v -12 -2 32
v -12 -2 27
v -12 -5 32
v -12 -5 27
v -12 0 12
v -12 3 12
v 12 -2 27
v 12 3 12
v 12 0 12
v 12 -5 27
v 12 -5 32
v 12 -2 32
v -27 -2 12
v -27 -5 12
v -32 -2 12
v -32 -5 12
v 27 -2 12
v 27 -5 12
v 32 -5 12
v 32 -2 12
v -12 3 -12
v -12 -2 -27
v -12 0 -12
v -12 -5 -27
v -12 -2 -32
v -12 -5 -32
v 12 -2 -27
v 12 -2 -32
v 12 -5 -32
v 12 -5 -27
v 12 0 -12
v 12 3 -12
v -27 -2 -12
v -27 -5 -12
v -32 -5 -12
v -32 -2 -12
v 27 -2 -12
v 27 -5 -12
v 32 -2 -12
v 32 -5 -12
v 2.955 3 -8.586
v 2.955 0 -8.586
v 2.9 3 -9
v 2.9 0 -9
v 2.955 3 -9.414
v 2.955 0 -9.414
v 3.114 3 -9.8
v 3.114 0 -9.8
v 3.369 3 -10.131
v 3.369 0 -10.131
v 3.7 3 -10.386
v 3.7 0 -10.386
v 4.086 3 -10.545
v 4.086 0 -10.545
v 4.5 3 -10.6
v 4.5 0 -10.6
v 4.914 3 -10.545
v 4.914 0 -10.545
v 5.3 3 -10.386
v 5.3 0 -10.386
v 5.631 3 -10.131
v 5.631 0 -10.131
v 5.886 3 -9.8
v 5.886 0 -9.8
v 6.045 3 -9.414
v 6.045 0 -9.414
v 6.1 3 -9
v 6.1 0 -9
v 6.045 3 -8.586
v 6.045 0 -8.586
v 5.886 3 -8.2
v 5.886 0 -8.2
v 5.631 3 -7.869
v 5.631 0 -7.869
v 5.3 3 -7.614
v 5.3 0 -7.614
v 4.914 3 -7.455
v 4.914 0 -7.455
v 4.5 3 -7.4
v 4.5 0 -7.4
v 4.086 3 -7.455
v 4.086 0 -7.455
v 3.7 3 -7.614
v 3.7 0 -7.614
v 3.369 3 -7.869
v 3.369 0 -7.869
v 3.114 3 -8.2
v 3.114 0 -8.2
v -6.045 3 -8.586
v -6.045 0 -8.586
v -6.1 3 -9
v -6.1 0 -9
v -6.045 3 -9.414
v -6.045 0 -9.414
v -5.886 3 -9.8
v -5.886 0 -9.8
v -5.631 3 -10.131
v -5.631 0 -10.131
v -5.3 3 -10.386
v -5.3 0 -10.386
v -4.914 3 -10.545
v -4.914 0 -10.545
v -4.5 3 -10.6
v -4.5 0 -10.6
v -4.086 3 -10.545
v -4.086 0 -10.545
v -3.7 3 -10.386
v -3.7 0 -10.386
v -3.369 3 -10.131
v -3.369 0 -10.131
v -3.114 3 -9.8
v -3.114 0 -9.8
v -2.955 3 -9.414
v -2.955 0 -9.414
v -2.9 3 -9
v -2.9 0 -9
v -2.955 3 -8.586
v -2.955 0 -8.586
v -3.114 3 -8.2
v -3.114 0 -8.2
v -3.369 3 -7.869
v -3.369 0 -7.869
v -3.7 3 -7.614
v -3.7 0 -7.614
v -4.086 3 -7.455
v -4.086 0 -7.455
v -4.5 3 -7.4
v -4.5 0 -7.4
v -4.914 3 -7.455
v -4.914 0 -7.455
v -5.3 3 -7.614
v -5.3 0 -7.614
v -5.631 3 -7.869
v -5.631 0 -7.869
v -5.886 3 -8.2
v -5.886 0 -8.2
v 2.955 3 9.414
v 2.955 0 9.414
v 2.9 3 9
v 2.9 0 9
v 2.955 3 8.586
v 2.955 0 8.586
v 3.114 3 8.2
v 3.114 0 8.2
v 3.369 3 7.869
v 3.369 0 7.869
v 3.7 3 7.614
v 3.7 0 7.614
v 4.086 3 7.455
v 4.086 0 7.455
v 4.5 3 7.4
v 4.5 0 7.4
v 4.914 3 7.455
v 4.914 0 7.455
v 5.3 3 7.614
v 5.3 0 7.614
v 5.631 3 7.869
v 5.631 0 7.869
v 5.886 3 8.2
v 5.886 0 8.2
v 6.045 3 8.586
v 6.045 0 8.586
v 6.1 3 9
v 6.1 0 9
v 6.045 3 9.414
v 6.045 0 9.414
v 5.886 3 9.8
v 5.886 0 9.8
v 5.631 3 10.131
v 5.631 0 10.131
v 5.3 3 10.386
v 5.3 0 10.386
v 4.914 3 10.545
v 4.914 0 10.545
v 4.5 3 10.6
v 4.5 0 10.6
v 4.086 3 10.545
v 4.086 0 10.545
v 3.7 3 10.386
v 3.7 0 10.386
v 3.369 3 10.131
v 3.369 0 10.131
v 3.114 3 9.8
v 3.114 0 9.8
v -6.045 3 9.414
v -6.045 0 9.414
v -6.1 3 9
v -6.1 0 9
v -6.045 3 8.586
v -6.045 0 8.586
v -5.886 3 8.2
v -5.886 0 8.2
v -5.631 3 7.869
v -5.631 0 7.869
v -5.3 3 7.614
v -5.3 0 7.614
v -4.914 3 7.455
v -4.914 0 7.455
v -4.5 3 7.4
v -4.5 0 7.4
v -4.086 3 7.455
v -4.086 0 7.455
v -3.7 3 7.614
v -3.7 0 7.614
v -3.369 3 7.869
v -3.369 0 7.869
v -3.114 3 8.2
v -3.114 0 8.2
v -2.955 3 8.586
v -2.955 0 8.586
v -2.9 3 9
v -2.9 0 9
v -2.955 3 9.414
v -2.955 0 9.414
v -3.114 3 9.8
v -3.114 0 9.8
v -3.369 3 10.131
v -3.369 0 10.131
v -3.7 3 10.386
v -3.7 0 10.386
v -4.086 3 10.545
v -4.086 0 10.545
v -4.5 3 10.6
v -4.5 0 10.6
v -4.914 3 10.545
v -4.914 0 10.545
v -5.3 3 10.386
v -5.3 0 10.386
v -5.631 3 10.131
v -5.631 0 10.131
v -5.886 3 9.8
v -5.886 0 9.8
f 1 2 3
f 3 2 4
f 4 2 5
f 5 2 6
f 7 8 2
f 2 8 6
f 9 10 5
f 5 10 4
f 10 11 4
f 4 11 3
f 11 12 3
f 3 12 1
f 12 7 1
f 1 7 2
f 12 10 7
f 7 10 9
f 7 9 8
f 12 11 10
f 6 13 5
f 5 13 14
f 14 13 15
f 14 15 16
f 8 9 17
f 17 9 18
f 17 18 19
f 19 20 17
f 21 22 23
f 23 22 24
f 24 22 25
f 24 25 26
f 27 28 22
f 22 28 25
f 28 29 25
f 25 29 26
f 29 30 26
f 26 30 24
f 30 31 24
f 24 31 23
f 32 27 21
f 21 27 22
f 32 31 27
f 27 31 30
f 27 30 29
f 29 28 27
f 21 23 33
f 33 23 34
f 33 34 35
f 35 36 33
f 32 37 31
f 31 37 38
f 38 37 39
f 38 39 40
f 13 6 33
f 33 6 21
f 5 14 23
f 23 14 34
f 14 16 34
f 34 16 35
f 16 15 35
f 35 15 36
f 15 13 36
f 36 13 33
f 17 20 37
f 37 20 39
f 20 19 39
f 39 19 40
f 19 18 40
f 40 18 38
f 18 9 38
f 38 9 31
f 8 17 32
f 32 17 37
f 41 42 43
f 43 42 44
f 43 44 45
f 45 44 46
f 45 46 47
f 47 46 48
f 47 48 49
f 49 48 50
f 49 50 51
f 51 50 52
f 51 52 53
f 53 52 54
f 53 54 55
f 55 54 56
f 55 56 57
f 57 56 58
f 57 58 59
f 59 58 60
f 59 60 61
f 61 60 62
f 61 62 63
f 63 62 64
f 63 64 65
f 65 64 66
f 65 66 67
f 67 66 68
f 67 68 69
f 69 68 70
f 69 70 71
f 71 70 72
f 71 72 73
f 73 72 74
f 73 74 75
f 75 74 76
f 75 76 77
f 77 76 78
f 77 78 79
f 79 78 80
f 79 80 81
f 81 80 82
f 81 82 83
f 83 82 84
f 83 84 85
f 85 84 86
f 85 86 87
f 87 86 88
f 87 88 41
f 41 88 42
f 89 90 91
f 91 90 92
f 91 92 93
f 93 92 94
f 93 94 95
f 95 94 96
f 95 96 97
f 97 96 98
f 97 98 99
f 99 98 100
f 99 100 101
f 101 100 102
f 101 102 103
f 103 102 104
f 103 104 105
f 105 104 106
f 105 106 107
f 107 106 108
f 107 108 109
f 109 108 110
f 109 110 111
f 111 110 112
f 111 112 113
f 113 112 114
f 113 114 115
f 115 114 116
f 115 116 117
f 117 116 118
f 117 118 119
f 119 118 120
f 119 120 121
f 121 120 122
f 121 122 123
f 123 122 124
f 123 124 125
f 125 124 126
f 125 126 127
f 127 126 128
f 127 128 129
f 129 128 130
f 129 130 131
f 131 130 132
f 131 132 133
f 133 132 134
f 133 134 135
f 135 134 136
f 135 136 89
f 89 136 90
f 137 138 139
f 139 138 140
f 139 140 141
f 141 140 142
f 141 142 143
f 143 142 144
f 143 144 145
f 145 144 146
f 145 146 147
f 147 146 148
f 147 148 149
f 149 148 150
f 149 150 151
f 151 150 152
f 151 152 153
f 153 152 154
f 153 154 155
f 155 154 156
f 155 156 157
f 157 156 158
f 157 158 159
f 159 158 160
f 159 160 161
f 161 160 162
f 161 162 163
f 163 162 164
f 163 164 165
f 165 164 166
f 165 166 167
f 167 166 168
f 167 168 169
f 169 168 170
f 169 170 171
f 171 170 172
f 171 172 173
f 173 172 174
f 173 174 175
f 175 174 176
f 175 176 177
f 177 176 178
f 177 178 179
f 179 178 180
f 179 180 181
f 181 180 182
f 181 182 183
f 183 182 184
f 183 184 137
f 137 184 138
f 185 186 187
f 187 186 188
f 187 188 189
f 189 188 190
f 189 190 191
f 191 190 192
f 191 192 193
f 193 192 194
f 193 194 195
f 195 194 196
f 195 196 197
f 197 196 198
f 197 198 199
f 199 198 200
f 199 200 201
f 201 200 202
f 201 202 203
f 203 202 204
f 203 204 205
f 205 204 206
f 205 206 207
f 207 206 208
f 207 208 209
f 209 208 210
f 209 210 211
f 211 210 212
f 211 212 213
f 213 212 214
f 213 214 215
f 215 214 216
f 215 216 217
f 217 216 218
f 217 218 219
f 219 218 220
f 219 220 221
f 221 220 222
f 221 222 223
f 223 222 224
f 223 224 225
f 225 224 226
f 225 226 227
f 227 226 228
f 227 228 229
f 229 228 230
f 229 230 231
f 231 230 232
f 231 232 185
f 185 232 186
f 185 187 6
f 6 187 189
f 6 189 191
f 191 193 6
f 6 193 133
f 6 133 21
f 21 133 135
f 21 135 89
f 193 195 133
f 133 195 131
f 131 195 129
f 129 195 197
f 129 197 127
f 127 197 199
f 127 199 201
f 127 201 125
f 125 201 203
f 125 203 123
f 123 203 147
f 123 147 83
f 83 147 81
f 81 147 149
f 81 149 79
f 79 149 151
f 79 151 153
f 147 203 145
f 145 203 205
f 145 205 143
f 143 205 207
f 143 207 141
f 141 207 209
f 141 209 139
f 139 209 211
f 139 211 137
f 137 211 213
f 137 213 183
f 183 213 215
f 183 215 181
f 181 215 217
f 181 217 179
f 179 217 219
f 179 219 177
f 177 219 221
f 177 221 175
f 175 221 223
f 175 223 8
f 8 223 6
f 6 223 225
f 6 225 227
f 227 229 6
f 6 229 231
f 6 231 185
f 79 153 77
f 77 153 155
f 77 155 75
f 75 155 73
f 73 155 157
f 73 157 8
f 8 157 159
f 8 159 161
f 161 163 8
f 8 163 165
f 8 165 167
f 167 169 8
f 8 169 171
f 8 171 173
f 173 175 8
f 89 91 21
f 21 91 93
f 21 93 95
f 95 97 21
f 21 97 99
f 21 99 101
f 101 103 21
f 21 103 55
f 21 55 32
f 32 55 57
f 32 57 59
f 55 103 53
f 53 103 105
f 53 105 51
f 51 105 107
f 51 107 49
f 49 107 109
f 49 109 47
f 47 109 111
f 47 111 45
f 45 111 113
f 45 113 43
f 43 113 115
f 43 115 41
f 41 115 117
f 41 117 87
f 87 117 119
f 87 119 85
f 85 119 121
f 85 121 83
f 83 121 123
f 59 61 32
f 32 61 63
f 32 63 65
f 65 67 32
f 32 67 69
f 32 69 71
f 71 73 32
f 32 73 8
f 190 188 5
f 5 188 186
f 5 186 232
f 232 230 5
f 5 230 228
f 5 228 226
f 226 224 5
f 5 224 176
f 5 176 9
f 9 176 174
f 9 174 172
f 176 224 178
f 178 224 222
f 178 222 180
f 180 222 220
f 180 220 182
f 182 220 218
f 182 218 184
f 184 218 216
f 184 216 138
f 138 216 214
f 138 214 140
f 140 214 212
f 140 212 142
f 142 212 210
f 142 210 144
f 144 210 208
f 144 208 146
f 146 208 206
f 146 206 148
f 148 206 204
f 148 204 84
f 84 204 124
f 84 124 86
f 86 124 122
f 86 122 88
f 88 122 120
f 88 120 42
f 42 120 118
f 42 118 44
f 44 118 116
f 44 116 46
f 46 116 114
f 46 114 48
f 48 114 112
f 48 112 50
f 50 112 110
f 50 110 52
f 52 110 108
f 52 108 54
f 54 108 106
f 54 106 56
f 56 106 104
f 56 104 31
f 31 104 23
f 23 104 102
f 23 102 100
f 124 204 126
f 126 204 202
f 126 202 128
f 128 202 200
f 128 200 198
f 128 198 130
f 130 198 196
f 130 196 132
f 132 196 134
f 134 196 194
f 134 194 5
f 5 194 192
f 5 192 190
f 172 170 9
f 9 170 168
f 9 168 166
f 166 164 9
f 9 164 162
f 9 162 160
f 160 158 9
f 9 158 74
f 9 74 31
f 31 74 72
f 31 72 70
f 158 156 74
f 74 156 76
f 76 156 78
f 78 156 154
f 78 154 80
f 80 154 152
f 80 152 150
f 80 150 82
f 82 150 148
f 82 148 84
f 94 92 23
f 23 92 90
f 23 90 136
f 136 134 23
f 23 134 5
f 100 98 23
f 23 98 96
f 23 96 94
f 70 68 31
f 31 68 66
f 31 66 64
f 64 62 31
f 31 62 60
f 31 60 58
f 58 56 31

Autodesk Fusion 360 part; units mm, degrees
sketch "スケッチ1" plane through (0, 0, 0) normal (0, 1, 0) x (1, 0, 0)
  line L0 (12, 12) -> (-12, 12)
  line L1 (-12, 12) -> (-12, -12)
  line L2 (-12, -12) -> (12, -12)
  line L3 (12, -12) -> (12, 12)
  line L4 (12, 12) -> (-12, -12) construction
  line L5 (-12, 12) -> (12, -12) construction
  line L6 (4.5, 9) -> (-4.5, 9)
  line L7 (-4.5, 9) -> (-4.5, -9)
  line L8 (-4.5, -9) -> (4.5, -9)
  line L9 (4.5, -9) -> (4.5, 9)
  line L10 (4.5, 9) -> (-4.5, -9) construction
  line L11 (-4.5, 9) -> (4.5, -9) construction
  circle A0 centre (-4.5, 9) radius 1.6
  circle A1 centre (4.5, 9) radius 1.6
  circle A2 centre (-4.5, -9) radius 1.6
  circle A3 centre (4.5, -9) radius 1.6
  dimension "d1" = 24
  dimension "d2" = 24
  dimension "d3" = 9
  dimension "d4" = 18
  dimension "d5" = 3.2
  dimension "d6" = 3.2
  dimension "d7" = 3.2
  dimension "d8" = 3.2
extrude "押し出し1" add sketch "スケッチ1" along normal blind 3 contours L0 L1 L2 L3 | L6 L7 L8 L9 A0 A1 A2 A3
sketch "スケッチ2" plane through (0, 0, 0) normal (0, 0, 1) x (1, 0, 0)
  line L0 (12, 0) -> (12, -5)
  line L1 (12, -5) -> (27, -5)
  line L2 (27, -5) -> (12, 0)
  line L3 (27, -5) -> (27, -2)
  line L4 (27, -2) -> (12, 3)
  line L5 (12, 0) -> (12, 3)
  line L6 (27, -2) -> (32, -2)
  line L7 (32, -2) -> (32, -5)
  line L8 (32, -5) -> (27, -5)
  line L9 (27, -5) -> (27, -2)
  dimension "d11" = 5
  dimension "d12" = 15
  dimension "d13" = 3
  dimension "d14" = 5
  dimension "d15" = 3
extrude "押し出し2" add sketch "スケッチ2" along normal mid plane 24 contours L2 L3 L4 L5 L9 | L3 L6 L7 L8 L9
sketch "スケッチ3" plane through (0, 0, 0) normal (0, 0, 1) x (1, 0, 0)
  line L0 (-12, 0) -> (-12, -5)
  line L1 (-12, -5) -> (-27, -5)
  line L2 (-12, 0) -> (-27, -5)
  line L3 (-27, -5) -> (-27, -2)
  line L4 (-27, -2) -> (-12, 3)
  line L5 (-12, 3) -> (-12, 0)
  line L6 (-27, -2) -> (-32, -2)
  line L7 (-32, -2) -> (-32, -5)
  line L8 (-32, -5) -> (-27, -5)
  line L9 (-27, -5) -> (-27, -2)
  dimension "d18" = 5
  dimension "d19" = 15
  dimension "d20" = 3
  dimension "d21" = 5
  dimension "d22" = 3
extrude "押し出し3" add sketch "スケッチ3" along normal mid plane 24 contours L2 L3 L4 L5 L9 | L3 L6 L7 L8 L9
sketch "スケッチ4" plane through (0, 0, 0) normal (1, 0, 0) x (0, 0, -1)
  line L0 (12, 0) -> (12, -5)
  line L1 (12, -5) -> (27, -5)
  line L2 (27, -5) -> (12, 0)
  line L3 (27, -5) -> (27, -2)
  line L4 (27, -2) -> (12, 3)
  line L5 (12, 3) -> (12, 0)
  line L6 (27, -2) -> (32, -2)
  line L7 (32, -2) -> (32, -5)
  line L8 (32, -5) -> (27, -5)
  line L9 (27, -5) -> (27, -2)
  line L10 (0, 5) -> (0, 4)
  line L11 (0, 4) -> (0, -9)
  line L12 (-27, -2) -> (-12, 3)
  line L13 (-12, 3) -> (-12, 0)
  line L14 (-27, -5) -> (-12, 0)
  line L15 (-27, -2) -> (-32, -2)
  line L16 (-27, -5) -> (-27, -2)
  line L17 (-32, -2) -> (-32, -5)
  line L18 (-32, -5) -> (-27, -5)
  dimension "d25" = 15
  dimension "d26" = 3
  dimension "d27" = 3
  dimension "d28" = 5
extrude "押し出し4" add sketch "スケッチ4" along normal mid plane 24 contours L2 L3 L4 L5 L9 | L3 L6 L7 L8 L9 | L15 L16 L17 L18 | L12 L13 L14 L16
